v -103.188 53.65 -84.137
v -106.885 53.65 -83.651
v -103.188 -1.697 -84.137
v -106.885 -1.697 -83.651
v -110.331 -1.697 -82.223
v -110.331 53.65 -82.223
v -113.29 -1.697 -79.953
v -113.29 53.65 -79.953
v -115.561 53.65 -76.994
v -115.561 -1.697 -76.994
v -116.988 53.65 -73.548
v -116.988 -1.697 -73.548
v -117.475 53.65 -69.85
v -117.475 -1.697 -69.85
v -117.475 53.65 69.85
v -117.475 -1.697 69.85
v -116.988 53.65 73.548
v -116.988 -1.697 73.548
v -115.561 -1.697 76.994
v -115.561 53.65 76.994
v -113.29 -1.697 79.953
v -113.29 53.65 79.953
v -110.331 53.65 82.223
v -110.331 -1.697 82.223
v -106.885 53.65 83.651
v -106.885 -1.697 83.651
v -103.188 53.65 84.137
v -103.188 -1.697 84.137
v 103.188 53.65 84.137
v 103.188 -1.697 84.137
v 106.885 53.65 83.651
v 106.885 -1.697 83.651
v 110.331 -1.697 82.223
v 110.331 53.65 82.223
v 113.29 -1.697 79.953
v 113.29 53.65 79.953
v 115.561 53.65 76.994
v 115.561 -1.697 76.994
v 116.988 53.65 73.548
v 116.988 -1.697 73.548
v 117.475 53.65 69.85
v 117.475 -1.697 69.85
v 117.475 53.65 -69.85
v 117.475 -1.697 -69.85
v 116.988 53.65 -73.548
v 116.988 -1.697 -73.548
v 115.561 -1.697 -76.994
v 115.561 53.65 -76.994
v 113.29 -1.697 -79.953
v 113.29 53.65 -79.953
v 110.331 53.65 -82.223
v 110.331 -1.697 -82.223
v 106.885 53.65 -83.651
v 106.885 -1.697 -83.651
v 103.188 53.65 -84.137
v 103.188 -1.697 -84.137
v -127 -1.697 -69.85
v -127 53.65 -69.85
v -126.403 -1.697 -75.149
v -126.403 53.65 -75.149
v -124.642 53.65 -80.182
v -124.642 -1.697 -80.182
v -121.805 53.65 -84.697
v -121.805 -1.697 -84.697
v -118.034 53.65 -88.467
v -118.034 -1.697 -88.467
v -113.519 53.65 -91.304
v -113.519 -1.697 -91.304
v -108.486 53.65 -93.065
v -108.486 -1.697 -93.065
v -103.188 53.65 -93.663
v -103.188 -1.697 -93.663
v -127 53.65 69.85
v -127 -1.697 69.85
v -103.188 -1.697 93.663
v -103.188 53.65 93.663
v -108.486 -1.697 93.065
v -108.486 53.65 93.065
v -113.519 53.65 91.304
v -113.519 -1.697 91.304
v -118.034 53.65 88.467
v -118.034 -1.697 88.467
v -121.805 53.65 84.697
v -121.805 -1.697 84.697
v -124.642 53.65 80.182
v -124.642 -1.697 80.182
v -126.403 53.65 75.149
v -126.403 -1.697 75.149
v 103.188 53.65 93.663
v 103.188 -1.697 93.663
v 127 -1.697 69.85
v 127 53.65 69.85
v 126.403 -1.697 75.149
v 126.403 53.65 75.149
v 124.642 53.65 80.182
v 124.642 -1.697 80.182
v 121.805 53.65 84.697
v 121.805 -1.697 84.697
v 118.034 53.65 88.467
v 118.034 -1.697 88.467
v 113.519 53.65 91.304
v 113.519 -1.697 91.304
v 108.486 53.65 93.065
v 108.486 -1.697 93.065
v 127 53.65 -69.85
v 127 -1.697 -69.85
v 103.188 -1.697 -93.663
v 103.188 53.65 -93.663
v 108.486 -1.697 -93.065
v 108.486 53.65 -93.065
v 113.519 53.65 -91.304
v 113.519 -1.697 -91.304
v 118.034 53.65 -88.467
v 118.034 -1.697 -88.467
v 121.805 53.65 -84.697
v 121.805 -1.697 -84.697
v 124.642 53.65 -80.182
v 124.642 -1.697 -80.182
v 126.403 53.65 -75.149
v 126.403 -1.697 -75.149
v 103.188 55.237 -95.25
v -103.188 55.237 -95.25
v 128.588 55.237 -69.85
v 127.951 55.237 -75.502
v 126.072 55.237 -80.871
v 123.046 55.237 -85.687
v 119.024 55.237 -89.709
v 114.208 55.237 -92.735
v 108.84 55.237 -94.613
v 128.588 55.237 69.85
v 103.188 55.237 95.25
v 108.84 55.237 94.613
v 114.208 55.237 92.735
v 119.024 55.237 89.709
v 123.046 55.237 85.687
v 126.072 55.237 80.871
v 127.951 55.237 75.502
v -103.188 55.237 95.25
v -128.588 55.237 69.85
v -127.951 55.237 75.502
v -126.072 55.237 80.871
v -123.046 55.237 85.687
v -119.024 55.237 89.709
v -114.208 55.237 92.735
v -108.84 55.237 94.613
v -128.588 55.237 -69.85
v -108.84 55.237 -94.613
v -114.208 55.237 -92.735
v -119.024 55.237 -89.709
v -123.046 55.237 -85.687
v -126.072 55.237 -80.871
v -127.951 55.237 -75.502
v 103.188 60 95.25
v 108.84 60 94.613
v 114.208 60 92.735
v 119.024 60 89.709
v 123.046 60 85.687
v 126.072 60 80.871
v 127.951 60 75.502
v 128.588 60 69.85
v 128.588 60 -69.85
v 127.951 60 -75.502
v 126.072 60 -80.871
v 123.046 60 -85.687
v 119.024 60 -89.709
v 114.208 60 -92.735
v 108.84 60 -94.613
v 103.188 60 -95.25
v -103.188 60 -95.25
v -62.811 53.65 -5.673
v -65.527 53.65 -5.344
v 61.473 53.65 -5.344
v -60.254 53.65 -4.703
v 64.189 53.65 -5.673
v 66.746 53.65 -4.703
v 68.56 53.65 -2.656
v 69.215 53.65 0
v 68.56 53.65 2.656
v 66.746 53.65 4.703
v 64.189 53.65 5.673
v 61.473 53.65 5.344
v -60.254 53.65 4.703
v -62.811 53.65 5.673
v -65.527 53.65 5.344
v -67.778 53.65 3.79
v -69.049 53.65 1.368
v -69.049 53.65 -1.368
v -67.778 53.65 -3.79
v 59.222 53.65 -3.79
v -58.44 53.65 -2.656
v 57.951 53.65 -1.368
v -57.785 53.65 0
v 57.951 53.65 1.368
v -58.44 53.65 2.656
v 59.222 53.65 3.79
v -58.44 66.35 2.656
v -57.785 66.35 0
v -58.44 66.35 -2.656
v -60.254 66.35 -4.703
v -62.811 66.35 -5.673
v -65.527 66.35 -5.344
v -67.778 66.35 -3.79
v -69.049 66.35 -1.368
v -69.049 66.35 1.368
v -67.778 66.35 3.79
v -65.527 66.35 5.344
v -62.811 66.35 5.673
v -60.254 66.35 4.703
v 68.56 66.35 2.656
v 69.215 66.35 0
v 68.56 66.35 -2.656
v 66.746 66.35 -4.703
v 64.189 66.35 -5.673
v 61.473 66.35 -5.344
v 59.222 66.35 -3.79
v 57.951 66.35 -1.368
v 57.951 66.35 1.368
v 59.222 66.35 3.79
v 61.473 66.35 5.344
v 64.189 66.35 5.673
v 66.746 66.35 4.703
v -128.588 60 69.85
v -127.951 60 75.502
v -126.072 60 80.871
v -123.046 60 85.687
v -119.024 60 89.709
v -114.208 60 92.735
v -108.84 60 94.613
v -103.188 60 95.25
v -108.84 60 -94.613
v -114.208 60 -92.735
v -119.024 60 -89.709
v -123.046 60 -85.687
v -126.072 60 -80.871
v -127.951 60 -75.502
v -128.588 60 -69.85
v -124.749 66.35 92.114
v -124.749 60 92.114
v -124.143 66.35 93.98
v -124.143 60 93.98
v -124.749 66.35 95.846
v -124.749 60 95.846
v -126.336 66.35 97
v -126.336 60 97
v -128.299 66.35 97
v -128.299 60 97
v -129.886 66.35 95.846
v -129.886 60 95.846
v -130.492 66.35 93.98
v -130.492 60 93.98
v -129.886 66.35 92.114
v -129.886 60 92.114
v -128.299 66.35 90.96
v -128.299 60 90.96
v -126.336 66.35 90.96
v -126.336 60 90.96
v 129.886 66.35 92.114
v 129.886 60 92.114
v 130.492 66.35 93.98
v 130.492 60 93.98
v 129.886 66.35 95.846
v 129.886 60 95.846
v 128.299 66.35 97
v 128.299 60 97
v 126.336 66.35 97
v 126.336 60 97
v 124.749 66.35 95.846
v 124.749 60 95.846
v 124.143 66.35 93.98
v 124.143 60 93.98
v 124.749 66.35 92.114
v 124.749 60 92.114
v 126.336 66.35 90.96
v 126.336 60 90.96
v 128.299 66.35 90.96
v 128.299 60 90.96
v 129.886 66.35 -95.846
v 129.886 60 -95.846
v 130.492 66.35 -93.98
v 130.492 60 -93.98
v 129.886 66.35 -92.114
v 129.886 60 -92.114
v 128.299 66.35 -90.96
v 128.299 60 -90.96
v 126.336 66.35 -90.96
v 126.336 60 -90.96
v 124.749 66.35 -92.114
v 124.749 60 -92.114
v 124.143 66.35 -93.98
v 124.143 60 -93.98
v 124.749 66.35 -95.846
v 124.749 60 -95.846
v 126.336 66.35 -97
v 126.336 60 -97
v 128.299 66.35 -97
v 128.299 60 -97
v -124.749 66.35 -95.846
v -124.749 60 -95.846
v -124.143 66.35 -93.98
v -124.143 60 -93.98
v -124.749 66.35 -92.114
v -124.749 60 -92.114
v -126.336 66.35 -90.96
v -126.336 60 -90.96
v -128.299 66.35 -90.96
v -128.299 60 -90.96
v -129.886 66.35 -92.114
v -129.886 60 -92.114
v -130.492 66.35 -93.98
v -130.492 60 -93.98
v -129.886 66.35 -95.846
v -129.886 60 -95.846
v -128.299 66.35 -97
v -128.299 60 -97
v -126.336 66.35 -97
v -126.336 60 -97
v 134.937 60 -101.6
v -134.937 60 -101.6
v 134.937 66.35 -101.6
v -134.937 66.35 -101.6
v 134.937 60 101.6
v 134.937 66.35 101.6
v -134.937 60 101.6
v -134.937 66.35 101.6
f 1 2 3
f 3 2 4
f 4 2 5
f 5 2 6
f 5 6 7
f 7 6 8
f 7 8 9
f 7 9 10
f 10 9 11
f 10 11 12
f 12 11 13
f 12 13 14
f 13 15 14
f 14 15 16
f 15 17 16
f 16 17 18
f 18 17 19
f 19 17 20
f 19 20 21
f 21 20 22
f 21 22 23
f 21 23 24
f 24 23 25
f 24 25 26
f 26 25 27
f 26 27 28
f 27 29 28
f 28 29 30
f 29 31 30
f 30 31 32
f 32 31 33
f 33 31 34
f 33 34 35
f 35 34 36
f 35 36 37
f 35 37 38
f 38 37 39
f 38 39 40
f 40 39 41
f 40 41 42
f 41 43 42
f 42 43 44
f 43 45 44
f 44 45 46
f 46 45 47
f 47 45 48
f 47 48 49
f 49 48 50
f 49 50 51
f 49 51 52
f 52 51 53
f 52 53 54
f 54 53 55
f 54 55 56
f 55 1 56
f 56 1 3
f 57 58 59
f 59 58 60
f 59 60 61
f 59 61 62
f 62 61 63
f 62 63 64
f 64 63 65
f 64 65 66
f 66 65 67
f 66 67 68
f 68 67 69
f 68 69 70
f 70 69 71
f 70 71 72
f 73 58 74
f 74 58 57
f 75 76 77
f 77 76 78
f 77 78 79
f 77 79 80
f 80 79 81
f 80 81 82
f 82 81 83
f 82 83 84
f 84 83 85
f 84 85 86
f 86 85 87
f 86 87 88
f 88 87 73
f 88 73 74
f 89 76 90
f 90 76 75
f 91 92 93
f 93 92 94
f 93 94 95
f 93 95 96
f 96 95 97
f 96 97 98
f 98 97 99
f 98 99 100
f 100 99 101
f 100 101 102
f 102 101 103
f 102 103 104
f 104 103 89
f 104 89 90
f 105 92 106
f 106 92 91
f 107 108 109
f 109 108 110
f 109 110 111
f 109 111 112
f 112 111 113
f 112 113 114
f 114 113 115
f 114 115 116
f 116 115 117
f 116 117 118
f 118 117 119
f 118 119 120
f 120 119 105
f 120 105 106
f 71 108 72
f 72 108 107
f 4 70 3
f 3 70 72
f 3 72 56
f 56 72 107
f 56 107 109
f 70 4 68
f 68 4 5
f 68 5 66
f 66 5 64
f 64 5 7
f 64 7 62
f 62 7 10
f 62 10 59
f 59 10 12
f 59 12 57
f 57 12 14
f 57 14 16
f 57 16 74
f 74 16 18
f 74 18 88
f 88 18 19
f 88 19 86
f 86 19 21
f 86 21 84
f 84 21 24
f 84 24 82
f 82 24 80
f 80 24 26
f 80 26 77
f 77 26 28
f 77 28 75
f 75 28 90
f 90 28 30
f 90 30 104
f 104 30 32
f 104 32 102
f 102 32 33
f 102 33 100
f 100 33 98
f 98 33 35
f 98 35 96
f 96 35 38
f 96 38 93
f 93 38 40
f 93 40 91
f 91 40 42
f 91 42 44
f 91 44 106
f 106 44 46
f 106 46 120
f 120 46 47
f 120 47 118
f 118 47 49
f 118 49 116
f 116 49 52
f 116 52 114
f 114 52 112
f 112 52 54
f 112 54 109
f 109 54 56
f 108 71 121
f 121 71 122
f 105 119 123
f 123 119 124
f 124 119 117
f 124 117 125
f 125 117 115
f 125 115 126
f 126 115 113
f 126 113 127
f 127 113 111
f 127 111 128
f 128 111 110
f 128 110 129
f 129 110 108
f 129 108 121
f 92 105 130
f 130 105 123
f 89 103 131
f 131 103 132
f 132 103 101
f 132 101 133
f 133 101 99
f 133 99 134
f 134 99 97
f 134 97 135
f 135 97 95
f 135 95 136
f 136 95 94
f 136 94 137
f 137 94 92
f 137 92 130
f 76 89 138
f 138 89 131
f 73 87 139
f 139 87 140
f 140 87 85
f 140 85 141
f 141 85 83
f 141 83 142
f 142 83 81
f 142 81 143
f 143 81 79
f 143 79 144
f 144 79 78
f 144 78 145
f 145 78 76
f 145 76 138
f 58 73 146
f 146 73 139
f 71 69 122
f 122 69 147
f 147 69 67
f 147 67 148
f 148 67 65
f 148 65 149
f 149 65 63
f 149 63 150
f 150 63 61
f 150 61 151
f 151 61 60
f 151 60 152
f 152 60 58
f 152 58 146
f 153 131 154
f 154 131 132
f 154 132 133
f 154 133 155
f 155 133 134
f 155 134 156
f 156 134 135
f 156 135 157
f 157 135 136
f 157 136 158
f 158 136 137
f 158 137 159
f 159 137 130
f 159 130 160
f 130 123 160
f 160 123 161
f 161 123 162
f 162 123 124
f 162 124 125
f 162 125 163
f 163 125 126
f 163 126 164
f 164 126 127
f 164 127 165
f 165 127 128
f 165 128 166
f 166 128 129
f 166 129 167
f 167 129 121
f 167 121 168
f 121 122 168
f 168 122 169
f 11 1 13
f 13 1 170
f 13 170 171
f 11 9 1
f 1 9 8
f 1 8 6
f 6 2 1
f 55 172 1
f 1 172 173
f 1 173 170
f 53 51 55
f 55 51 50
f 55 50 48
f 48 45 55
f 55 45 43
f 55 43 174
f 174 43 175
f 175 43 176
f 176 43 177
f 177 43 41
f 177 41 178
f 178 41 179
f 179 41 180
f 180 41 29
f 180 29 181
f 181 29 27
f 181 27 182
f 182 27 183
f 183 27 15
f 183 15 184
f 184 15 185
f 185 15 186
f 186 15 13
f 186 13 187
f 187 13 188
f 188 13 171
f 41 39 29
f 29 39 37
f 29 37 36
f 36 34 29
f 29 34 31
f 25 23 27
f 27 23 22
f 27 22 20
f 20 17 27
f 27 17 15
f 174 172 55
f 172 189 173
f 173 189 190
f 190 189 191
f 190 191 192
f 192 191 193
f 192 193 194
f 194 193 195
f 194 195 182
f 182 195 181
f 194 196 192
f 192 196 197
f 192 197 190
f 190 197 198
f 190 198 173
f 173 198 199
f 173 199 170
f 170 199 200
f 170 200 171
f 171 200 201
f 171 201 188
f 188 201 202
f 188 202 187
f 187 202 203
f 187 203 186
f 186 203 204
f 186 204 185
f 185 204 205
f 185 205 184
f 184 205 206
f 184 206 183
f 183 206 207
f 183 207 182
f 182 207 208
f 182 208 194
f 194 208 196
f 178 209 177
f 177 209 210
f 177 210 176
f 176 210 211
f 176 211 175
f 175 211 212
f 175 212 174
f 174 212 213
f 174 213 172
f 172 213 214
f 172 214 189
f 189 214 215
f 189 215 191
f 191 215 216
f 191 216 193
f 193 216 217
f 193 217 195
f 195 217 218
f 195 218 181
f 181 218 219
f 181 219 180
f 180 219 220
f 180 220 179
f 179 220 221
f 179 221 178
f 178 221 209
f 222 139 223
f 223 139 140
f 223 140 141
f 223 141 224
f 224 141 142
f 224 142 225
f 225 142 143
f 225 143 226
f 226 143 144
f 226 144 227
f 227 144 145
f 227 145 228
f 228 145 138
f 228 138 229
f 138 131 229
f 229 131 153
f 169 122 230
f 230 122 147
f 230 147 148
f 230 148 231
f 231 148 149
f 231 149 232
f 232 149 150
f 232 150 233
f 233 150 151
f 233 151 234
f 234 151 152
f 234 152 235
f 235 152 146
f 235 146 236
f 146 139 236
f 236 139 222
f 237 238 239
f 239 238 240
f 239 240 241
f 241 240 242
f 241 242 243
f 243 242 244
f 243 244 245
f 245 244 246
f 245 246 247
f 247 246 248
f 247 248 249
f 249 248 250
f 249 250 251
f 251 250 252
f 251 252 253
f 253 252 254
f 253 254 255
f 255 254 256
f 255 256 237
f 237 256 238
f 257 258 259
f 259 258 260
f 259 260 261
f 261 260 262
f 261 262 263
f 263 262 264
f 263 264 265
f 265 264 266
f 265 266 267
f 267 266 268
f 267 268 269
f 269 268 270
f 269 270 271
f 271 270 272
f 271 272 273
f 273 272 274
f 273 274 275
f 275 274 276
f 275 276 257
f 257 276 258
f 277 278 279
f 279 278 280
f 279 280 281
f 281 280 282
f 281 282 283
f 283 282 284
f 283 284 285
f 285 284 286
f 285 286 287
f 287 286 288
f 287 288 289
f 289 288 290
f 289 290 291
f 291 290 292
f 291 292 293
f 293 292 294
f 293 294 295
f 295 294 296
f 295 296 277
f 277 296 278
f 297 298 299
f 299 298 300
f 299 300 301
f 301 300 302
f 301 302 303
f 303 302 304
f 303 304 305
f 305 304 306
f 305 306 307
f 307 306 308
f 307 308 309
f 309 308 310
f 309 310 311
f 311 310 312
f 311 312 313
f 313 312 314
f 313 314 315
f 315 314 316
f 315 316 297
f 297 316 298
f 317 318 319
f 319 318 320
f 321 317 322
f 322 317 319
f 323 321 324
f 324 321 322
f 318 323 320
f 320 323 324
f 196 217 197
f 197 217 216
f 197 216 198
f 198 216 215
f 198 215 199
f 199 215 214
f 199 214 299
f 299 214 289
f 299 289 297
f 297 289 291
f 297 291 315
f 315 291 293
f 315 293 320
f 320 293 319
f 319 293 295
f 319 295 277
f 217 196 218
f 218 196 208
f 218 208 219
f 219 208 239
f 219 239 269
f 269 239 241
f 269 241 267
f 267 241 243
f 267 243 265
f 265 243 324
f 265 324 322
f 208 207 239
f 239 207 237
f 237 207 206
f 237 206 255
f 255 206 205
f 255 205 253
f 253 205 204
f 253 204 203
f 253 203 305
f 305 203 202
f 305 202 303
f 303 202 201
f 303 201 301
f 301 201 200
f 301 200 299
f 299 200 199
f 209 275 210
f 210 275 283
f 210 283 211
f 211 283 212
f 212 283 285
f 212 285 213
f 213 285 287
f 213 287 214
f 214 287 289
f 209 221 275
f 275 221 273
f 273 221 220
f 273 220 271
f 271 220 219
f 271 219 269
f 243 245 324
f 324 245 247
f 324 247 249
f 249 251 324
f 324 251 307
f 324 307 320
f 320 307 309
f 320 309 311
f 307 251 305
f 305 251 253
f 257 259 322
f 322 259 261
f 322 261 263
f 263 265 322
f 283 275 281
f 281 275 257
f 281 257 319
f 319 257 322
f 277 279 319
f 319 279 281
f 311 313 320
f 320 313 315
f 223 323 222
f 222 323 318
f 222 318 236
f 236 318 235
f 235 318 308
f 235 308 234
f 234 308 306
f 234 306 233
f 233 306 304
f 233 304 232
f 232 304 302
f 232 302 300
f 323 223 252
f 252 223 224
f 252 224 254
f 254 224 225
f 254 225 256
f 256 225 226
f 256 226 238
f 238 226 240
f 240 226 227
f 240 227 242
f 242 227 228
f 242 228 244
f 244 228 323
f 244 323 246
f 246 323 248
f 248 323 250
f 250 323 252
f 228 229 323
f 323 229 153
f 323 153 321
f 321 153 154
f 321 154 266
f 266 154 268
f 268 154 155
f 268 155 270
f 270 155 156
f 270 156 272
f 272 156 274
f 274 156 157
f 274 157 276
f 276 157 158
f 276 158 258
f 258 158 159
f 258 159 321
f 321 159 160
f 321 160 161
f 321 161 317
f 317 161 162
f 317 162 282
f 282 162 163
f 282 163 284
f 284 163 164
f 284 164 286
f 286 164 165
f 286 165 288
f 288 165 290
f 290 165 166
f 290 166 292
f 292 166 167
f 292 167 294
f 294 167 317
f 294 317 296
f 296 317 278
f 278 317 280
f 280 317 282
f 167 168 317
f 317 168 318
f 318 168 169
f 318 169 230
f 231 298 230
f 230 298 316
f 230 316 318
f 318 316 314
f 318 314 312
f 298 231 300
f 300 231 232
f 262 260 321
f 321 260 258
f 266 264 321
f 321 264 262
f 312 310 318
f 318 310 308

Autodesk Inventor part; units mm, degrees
ref_plane "YZ Plane" through (0, 0, 0) normal (1, 0, 0) x (0, 1, 0)
ref_plane "XZ Plane" through (0, 0, 0) normal (0, 1, 0) x (-1, 0, 0)
ref_plane "XY Plane" through (0, 0, 0) normal (0, 0, 1) x (1, 0, 0)
sketch "Sketch1" plane through (0, 0, 0) normal (0, 1, 0) x (-1, 0, 0)
  line L0 (-128.5875, 95.25) -> (128.5875, 95.25)
  line L1 (128.5875, 95.25) -> (128.5875, -95.25)
  line L2 (128.5875, -95.25) -> (-128.5875, -95.25)
  line L3 (-128.5875, -95.25) -> (-128.5875, 95.25)
  line L4 (-128.5875, 95.25) -> (128.5875, -95.25) construction
  line L5 (128.5875, 95.25) -> (-128.5875, -95.25) construction
  line L6 (-115.8875, 82.55) -> (115.8875, 82.55)
  line L7 (115.8875, 82.55) -> (115.8875, -82.55)
  line L8 (115.8875, -82.55) -> (-115.8875, -82.55)
  line L9 (-115.8875, -82.55) -> (-115.8875, 82.55)
  line L10 (-115.8875, 82.55) -> (115.8875, -82.55) construction
  line L11 (115.8875, 82.55) -> (-115.8875, -82.55) construction
  line L12 (134.9375, -101.6) -> (134.9375, 101.6)
  line L13 (134.9375, 101.6) -> (-134.9375, 101.6)
  line L14 (-134.9375, 101.6) -> (-134.9375, -101.6)
  line L15 (-134.9375, -101.6) -> (134.9375, -101.6)
  point P0 (0, 0)
  point P1 (0, 0)
  dimension "d0" = 231.775
  dimension "d1" = 12.7
  dimension "d2" = 12.7
  dimension "d3" = 165.1
  dimension "d4" = 6.35
extrude "Extrusion1" add sketch "Sketch1" along normal blind 60 contours L15 L14 L13 L12
extrude "Extrusion2" add sketch "Sketch1" against normal blind 15.24 contours L0 L1 L2 L3 | L6 L7 L8 L9 | L15 L14 L13 L12
fillet "Fillet1" radius 25.4 4 edges at (128.5875, 30, 95.25) (-128.5875, 30, 95.25) (-128.5875, 30, -95.25) (128.5875, 30, -95.25)
sketch "Sketch2" plane through (0, 0, 0) normal (0, 1, 0) x (1, 0, 0)
  line L0 (28.575, -88.9) -> (-28.575, -88.9)
  line L1 (-28.575, 88.9) -> (28.575, 88.9)
  arc A0 (28.575, -88.9) -> (28.575, 88.9) centre (28.575, 0) ccw
  arc A1 (-28.575, 88.9) -> (-28.575, -88.9) centre (-28.575, 0) ccw
  line L2 (28.575, 76.2) -> (-28.575, 76.2)
  arc A2 (-28.575, 76.2) -> (-28.575, -76.2) centre (-28.575, 0) ccw
  line L3 (-28.575, -76.2) -> (28.575, -76.2)
  arc A3 (28.575, -76.2) -> (28.575, 76.2) centre (28.575, 0) ccw
  line L4 (-28.575, 63.5) -> (28.575, 63.5)
  arc A4 (28.575, -63.5) -> (28.575, 63.5) centre (28.575, 0) ccw
  line L5 (28.575, -63.5) -> (-28.575, -63.5)
  arc A5 (-28.575, 63.5) -> (-28.575, -63.5) centre (-28.575, 0) ccw
  line L6 (28.575, 50.8) -> (-28.575, 50.8)
  arc A6 (-28.575, 50.8) -> (-28.575, -50.8) centre (-28.575, 0) ccw
  line L7 (-28.575, -50.8) -> (28.575, -50.8)
  arc A7 (28.575, -50.8) -> (28.575, 50.8) centre (28.575, 0) ccw
  line L8 (-28.575, 38.1) -> (28.575, 38.1)
  arc A8 (28.575, -38.1) -> (28.575, 38.1) centre (28.575, 0) ccw
  line L9 (28.575, -38.1) -> (-28.575, -38.1)
  arc A9 (-28.575, 38.1) -> (-28.575, -38.1) centre (-28.575, 0) ccw
  line L10 (28.575, 25.4) -> (-28.575, 25.4)
  arc A10 (-28.575, 25.4) -> (-28.575, -25.4) centre (-28.575, 0) ccw
  line L11 (-28.575, -25.4) -> (28.575, -25.4)
  arc A11 (28.575, -25.4) -> (28.575, 25.4) centre (28.575, 0) ccw
  line L12 (-28.575, 12.7) -> (28.575, 12.7)
  arc A12 (28.575, -12.7) -> (28.575, 12.7) centre (28.575, 0) ccw
  line L13 (28.575, -12.7) -> (-28.575, -12.7)
  arc A13 (-28.575, 12.7) -> (-28.575, -12.7) centre (-28.575, 0) ccw
  circle A14 centre (0, 0) radius 5.715
  point P0 (0, 12.7)
  dimension "d10" = 88.9
  dimension "d11" = 57.15
  dimension "d12" = 12.7
  dimension "d13" = 12.7
  dimension "d14" = 12.7
  dimension "d15" = 12.7
  dimension "d17" = 12.7
  dimension "d18" = 12.7
  dimension "d19" = 11.43
extrude "Extrusion3" cut sketch "Sketch2" against normal through all contours A14
extrude "Extrusion4" cut sketch "Sketch2" against normal blind 3.175
sketch "Sketch3" plane through (0, 0, 0) normal (0, 1, 0) x (1, 0, 0)
  arc A0 (128.5875, 69.85) -> (103.1875, 95.25) centre (103.1875, 69.85) ccw projected
  line L0 (103.1875, 95.25) -> (-103.1875, 95.25) projected
  arc A1 (-103.1875, 95.25) -> (-128.5875, 69.85) centre (-103.1875, 69.85) ccw projected
  line L1 (-128.5875, 69.85) -> (-128.5875, -69.85) projected
  arc A2 (-128.5875, -69.85) -> (-103.1875, -95.25) centre (-103.1875, -69.85) ccw projected
  line L2 (-103.1875, -95.25) -> (103.1875, -95.25) projected
  arc A3 (103.1875, -95.25) -> (128.5875, -69.85) centre (103.1875, -69.85) ccw projected
  line L3 (128.5875, -69.85) -> (128.5875, 69.85) projected
  arc A4 (28.575, -88.9) -> (28.575, 88.9) centre (28.575, 0) ccw projected
  line L4 (28.575, -88.9) -> (-28.575, -88.9) projected
  arc A5 (-28.575, 88.9) -> (-28.575, -88.9) centre (-28.575, 0) ccw projected
  line L5 (-28.575, 88.9) -> (28.575, 88.9) projected
  line L6 (-12.7, -88.9) -> (12.7, -88.9)
  line L7 (12.7, -88.9) -> (12.7, 88.9)
  line L8 (12.7, 88.9) -> (-12.7, 88.9)
  line L9 (-12.7, 88.9) -> (-12.7, -88.9)
  line L10 (-12.7, -88.9) -> (12.7, 88.9) construction
  line L11 (12.7, -88.9) -> (-12.7, 88.9) construction
  line L12 (-28.575, 88.9) -> (28.575, 88.9) projected
  line L13 (103.1875, -69.85) -> (-103.1875, 69.85) construction
  circle A6 centre (0, 0) radius 5.715 projected
  line L14 (110.3067, -59.333) -> (-96.0683, 80.367)
  line L15 (-110.3067, 59.333) -> (96.0683, -80.367)
  arc A7 (96.0683, -80.367) -> (110.3067, -59.333) centre (103.1875, -69.85) ccw
  arc A8 (-96.0683, 80.367) -> (-110.3067, 59.333) centre (-103.1875, 69.85) ccw
  line L16 (-103.1875, -69.85) -> (103.1875, 69.85) construction
  line L17 (-96.0683, -80.367) -> (110.3067, 59.333)
  line L18 (96.0683, 80.367) -> (-110.3067, -59.333)
  arc A9 (-110.3067, -59.333) -> (-96.0683, -80.367) centre (-103.1875, -69.85) ccw
  arc A10 (110.3067, 59.333) -> (96.0683, 80.367) centre (103.1875, 69.85) ccw
  dimension "d24" = 25.4
  dimension "d25" = 25.4
  dimension "d26" = 25.4
extrude "Extrusion5" cut sketch "Sketch3" against normal blind 3.175 contours L15 L7 L17 L14 A4 | A4 L14 A7 L15 | L4 L9 L17 L15 L7 | L15 L17 L7 | L17 L14 L7 L18 A4 | A4 L18 A10 L17 | L17 L7 L14 | L17 L15 L9 L18 L14 L7 | L17 L9 L15 | L17 A5 L18 L15 L9 | L14 L18 L7 | L15 L18 L9 | L17 A9 L18 A5 | L18 L14 L9 L5 L7 | L18 L9 L14 | L18 L15 A5 L14 L9 | L15 A8 L14 A5 | A6
sketch "Sketch4" plane through (0, 0, 0) normal (0, 1, 0) x (1, 0, 0)
  line L0 (-12.7, 23.9331) -> (-12.7, 25.4) projected
  line L1 (-12.7, 25.4) -> (-14.8671, 25.4) projected
  line L2 (-14.8671, 25.4) -> (-12.7, 23.9331) projected
  line L3 (12.7, 23.9331) -> (14.8671, 25.4) projected
  line L4 (14.8671, 25.4) -> (12.7, 25.4) projected
  line L5 (12.7, 25.4) -> (12.7, 23.9331) projected
  line L6 (12.7, -23.9331) -> (12.7, -25.4) projected
  line L7 (12.7, -25.4) -> (14.8671, -25.4) projected
  line L8 (14.8671, -25.4) -> (12.7, -23.9331) projected
  line L9 (-12.7, -25.4) -> (-12.7, -23.9331) projected
  line L10 (-12.7, -23.9331) -> (-14.8671, -25.4) projected
  line L11 (-14.8671, -25.4) -> (-12.7, -25.4) projected
  point P0 (0, 0)
extrude "Extrusion6" cut sketch "Sketch4" against normal blind 3.175
sketch "Sketch5" plane through (0, 60, 0) normal (0, 1, 0) x (1, 0, 0)
  line L0 (-128.5875, -69.85) -> (-128.5875, 69.85) projected
  arc A0 (-103.1875, 95.25) -> (-128.5875, 69.85) centre (-103.1875, 69.85) ccw projected
  line L1 (-103.1875, 95.25) -> (103.1875, 95.25) projected
  arc A1 (128.5875, 69.85) -> (103.1875, 95.25) centre (103.1875, 69.85) ccw projected
  line L2 (128.5875, 69.85) -> (128.5875, -69.85) projected
  arc A2 (103.1875, -95.25) -> (128.5875, -69.85) centre (103.1875, -69.85) ccw projected
  line L3 (103.1875, -95.25) -> (-103.1875, -95.25) projected
  arc A3 (-128.5875, -69.85) -> (-103.1875, -95.25) centre (-103.1875, -69.85) ccw projected
  line L4 (-134.9375, 101.6) -> (-134.9375, -101.6) projected
  line L5 (-134.9375, -101.6) -> (134.9375, -101.6) projected
  line L6 (134.9375, -101.6) -> (134.9375, 101.6) projected
  line L7 (134.9375, 101.6) -> (-134.9375, 101.6) projected
  circle A4 centre (-127.3175, 93.98) radius 3.175
  circle A5 centre (127.3175, 93.98) radius 3.175
  circle A6 centre (127.3175, -93.98) radius 3.175
  circle A7 centre (-127.3175, -93.98) radius 3.175
  point P0 (0, 0)
  dimension "d31" = 6.35
  dimension "d32" = 7.62
  dimension "d33" = 7.62
  dimension "d34" = 7.62
  dimension "d35" = 7.62
extrude "Extrusion7" cut sketch "Sketch5" against normal through all contours L0 A0 L1 A1 L2 A2 L3 A3 | L7 L6 L5 L4 | A4 | A5 | A6 | A7
extrude "Extrusion8" add sketch "Sketch5" along normal blind 6.35 contours L0 A0 L1 A1 L2 A2 L3 A3 | L7 L6 L5 L4
extrude "Extrusion9" add sketch "Sketch5" against normal blind 6.35 contours L0 A0 L1 A1 L2 A2 L3 A3
sketch "Sketch6" plane through (0, 66.35, 0) normal (0, 1, 0) x (1, 0, 0)
  circle A0 centre (-63.5, 0) radius 5.715
  circle A1 centre (63.5, 0) radius 5.715
  point P0 (0, 0)
  dimension "d42" = 63.5
  dimension "d43" = 63.5
  dimension "d44" = 11.43
  dimension "d45" = 11.43
extrude "Extrusion10" cut sketch "Sketch6" against normal through all
chamfer "Chamfer2" distance 1.5875 angle 45 8 edges at (0, 53.65, -95.25) (121.148, 53.65, -87.8105) (128.5875, 53.65, 0) (121.148, 53.65, 87.8105) (0, 53.65, 95.25) (-121.148, 53.65, 87.8105) (-128.5875, 53.65, 0) (-121.148, 53.65, -87.8105)
sketch "Sketch7" plane through (0, 53.65, 0) normal (0, -1, 0) x (1, 0, 0)
  circle A0 centre (63.5, 0) radius 5.715 projected
  circle A1 centre (-63.5, 0) radius 5.715 projected
  line L0 (103.1875, -93.6625) -> (-103.1875, -93.6625) projected
  arc A2 (103.1875, -93.6625) -> (127, -69.85) centre (103.1875, -69.85) ccw projected
  line L1 (127, 69.85) -> (127, -69.85) projected
  arc A3 (127, 69.85) -> (103.1875, 93.6625) centre (103.1875, 69.85) ccw projected
  line L2 (-103.1875, 93.6625) -> (103.1875, 93.6625) projected
  arc A4 (-103.1875, 93.6625) -> (-127, 69.85) centre (-103.1875, 69.85) ccw projected
  line L3 (-127, -69.85) -> (-127, 69.85) projected
  arc A5 (-127, -69.85) -> (-103.1875, -93.6625) centre (-103.1875, -69.85) ccw projected
  line L4 (-103.1875, -84.1375) -> (103.1875, -84.1375)
  arc A6 (103.1875, -84.1375) -> (117.475, -69.85) centre (103.1875, -69.85) ccw
  line L5 (117.475, -69.85) -> (117.475, 69.85)
  arc A7 (117.475, 69.85) -> (103.1875, 84.1375) centre (103.1875, 69.85) ccw
  line L6 (103.1875, 84.1375) -> (-103.1875, 84.1375)
  arc A8 (-103.1875, 84.1375) -> (-117.475, 69.85) centre (-103.1875, 69.85) ccw
  line L7 (-117.475, 69.85) -> (-117.475, -69.85)
  arc A9 (-117.475, -69.85) -> (-103.1875, -84.1375) centre (-103.1875, -69.85) ccw
  point P0 (0, 0)
  dimension "d54" = 9.525
extrude "Extrusion11" add sketch "Sketch7" along normal blind 55.3466 contours L0 A5 L3 A4 L2 A3 L1 A2
equation "\"d2\" = d1"
equation "\"d13\" = d12"
equation "\"d14\" = d13"
equation "\"d15\" = d14"
equation "\"d17\" = d15"
equation "\"d18\" = d12"
equation "\"d25\" = d24"
equation "\"d26\" = d25"
equation "\"d33\" = d32"
equation "\"d43\" = d42"
equation "\"d45\" = d44"
properties part number "CorollaAirFilterCaseCover"
